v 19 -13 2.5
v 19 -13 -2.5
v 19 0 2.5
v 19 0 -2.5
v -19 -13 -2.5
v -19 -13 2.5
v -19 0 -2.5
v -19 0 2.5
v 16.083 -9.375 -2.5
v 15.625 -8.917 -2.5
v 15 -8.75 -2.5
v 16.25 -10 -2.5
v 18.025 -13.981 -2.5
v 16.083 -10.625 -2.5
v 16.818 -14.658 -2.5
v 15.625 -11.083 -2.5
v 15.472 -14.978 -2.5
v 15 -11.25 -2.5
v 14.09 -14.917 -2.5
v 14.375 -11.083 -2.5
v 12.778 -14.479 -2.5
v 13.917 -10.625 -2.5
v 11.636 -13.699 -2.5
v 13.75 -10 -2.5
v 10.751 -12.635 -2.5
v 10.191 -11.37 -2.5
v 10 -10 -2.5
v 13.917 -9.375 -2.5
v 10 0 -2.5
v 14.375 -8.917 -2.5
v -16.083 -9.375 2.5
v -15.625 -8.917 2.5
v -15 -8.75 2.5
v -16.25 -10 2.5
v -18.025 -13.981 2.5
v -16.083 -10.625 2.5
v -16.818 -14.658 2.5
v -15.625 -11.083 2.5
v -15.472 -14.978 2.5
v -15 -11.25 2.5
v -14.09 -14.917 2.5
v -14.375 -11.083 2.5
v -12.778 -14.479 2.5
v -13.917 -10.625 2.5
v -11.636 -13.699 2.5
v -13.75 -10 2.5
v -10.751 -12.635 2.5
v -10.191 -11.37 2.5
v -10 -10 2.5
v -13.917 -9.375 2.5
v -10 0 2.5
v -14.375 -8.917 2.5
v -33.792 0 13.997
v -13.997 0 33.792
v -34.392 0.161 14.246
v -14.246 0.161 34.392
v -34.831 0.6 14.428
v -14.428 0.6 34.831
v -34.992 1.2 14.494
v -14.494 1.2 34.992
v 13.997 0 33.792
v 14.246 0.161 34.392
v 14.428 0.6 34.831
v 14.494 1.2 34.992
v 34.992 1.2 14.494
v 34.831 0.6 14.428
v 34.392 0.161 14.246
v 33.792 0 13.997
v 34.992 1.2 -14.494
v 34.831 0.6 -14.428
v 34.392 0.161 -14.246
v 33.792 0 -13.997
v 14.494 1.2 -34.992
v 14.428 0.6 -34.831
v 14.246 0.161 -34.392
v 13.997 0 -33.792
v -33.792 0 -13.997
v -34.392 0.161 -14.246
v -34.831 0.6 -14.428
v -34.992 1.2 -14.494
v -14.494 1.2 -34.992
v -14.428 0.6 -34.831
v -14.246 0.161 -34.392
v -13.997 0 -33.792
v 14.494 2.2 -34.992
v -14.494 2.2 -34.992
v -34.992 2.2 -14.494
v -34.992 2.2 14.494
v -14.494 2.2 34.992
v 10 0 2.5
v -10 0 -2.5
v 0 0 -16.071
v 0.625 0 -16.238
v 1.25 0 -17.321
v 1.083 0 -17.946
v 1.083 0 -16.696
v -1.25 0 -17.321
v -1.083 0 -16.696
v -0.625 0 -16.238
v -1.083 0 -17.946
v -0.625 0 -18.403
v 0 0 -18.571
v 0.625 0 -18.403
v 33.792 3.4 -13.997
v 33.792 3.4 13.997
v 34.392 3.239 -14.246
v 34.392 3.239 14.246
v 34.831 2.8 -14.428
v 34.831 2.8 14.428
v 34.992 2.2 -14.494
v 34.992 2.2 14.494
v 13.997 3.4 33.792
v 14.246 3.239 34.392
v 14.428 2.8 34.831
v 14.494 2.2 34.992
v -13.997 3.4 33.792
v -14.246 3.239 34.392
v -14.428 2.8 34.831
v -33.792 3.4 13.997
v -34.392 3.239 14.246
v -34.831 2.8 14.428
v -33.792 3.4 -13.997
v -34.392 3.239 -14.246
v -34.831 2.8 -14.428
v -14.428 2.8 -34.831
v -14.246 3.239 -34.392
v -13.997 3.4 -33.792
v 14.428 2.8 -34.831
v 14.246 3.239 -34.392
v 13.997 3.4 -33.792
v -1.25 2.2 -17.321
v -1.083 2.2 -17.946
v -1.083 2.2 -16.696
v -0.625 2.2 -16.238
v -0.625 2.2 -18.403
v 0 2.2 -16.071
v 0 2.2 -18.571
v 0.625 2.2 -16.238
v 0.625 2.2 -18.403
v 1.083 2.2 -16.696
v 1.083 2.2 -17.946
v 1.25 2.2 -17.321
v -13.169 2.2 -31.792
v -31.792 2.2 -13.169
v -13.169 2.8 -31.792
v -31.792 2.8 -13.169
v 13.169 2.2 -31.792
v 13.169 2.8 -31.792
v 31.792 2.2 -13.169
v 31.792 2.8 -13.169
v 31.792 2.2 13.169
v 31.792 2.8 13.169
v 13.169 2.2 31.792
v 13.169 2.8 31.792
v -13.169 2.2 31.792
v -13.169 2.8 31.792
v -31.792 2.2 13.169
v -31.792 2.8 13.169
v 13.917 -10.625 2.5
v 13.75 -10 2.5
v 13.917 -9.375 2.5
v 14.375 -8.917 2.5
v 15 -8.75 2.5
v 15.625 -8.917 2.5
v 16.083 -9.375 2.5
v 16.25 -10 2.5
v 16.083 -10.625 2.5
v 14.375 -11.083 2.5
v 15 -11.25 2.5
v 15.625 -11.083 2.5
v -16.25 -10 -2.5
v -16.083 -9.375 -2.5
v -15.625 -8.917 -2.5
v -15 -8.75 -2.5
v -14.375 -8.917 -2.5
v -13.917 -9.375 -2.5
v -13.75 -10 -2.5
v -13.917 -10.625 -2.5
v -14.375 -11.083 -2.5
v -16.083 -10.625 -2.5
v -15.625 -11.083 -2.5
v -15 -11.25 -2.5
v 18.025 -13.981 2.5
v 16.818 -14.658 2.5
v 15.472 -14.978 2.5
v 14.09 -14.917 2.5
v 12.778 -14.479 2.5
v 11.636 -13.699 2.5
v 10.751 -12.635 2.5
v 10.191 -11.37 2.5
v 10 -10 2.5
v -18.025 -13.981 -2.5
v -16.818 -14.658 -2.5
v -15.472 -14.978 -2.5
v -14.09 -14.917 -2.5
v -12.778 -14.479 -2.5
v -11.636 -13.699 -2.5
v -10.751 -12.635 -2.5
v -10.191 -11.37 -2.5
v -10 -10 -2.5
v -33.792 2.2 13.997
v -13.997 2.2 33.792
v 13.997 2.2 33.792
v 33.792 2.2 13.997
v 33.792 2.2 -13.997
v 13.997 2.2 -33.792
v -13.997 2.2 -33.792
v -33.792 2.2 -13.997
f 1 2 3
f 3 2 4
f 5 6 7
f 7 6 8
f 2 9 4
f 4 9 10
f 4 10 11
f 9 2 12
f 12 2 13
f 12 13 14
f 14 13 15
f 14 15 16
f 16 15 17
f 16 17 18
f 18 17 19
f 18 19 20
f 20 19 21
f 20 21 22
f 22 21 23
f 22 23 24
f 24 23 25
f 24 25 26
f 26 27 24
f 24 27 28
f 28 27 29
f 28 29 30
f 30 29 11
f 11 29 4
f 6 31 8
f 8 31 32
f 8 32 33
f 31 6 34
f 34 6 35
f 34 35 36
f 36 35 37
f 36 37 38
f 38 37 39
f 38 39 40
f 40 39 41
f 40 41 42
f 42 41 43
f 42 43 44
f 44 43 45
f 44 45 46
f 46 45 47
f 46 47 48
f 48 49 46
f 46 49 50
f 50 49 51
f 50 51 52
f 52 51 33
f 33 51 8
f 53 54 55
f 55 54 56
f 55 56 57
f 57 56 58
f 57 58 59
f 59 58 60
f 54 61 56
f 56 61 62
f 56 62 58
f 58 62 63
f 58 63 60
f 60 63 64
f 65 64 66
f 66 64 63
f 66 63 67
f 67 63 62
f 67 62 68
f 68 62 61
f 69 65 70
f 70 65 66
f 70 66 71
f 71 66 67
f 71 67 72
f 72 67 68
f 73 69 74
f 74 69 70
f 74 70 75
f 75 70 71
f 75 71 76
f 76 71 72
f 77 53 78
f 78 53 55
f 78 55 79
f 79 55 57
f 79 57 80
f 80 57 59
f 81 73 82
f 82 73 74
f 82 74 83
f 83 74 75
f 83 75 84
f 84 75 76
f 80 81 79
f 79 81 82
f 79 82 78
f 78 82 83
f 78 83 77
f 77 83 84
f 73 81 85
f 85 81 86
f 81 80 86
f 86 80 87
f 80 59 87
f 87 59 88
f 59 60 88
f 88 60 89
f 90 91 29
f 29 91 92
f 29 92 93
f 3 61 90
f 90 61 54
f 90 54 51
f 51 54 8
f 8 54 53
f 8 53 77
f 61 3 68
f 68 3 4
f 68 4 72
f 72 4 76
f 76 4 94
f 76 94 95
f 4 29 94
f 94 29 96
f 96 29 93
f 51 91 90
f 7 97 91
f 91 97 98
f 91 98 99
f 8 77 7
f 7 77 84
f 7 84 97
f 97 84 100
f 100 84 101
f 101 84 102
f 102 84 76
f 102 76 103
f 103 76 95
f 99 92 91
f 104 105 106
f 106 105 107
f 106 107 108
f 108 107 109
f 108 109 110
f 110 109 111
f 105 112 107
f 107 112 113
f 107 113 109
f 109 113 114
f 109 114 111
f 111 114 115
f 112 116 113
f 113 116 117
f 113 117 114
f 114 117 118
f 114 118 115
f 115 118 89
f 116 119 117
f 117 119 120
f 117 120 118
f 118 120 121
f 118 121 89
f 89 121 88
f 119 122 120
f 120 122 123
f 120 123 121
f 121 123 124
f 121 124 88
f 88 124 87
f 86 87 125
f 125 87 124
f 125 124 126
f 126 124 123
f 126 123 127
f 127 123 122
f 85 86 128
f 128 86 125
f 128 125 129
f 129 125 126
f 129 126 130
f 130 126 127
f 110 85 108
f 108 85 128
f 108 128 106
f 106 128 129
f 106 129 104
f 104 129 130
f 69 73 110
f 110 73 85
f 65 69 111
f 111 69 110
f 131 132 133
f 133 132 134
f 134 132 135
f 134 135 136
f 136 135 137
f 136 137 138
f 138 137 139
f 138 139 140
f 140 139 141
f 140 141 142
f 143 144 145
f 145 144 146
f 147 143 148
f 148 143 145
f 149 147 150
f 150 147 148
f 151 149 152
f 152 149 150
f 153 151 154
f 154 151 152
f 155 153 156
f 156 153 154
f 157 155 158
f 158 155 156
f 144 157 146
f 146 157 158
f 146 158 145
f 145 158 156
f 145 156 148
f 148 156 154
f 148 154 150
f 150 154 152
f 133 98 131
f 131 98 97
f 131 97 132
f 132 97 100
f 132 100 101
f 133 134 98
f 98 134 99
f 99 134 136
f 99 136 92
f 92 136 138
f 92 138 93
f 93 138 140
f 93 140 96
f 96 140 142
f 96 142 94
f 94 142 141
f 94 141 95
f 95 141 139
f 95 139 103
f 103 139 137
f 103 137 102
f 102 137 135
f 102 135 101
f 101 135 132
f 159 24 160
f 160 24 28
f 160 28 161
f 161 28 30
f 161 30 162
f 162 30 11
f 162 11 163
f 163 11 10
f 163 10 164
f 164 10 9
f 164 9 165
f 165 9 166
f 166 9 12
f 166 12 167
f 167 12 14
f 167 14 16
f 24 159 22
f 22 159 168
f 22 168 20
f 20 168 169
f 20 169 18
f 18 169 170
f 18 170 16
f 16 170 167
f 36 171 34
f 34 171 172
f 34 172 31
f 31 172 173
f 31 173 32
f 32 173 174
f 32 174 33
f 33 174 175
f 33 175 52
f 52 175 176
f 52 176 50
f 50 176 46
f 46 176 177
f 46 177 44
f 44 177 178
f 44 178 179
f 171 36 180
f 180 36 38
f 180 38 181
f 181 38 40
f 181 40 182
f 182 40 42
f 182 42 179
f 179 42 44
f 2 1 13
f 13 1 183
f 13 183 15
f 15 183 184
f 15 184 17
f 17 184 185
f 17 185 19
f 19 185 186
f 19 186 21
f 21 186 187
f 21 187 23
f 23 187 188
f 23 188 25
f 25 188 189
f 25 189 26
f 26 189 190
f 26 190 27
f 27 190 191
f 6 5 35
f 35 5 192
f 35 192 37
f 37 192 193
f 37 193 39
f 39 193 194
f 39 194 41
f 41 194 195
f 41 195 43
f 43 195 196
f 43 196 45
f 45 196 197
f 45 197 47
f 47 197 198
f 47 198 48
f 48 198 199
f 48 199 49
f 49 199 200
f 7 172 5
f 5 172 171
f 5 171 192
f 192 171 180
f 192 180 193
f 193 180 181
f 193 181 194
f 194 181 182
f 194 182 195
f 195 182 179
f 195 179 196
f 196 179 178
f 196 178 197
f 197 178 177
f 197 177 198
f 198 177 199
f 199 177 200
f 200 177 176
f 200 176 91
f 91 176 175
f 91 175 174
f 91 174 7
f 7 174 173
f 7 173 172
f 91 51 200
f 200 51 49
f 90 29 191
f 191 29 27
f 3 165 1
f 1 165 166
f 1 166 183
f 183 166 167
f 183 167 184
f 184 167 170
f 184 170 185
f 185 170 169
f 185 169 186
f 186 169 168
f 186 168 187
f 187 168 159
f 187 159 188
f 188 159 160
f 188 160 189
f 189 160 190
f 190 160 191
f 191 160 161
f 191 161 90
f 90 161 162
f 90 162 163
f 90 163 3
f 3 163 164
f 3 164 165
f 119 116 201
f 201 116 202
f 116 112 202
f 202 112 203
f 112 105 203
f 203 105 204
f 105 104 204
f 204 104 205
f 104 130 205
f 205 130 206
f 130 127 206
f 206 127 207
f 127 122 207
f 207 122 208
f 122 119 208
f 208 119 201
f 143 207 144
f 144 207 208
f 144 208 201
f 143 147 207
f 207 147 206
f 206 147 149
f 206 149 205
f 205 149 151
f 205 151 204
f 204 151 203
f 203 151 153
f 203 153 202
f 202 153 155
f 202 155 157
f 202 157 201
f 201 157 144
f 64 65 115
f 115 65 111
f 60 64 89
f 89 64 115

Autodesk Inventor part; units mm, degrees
ref_plane "YZ Plane" through (0, 0, 0) normal (1, 0, 0) x (0, 1, 0)
ref_plane "XZ Plane" through (0, 0, 0) normal (0, 1, 0) x (-1, 0, 0)
ref_plane "XY Plane" through (0, 0, 0) normal (0, 0, 1) x (1, 0, 0)
sketch "스케치3" plane through (0, 0, 0) normal (0, 1, 0) x (-1, 0, 0)
  line L0 (34.9919, -14.4941) -> (14.4941, -34.9919)
  line L1 (14.4941, -34.9919) -> (-14.4941, -34.9919)
  line L2 (-14.4941, -34.9919) -> (-34.9919, -14.4941)
  line L3 (-34.9919, -14.4941) -> (-34.9919, 14.4941)
  line L4 (-34.9919, 14.4941) -> (-14.4941, 34.9919)
  line L5 (-14.4941, 34.9919) -> (14.4941, 34.9919)
  line L6 (14.4941, 34.9919) -> (34.9919, 14.4941)
  line L7 (34.9919, 14.4941) -> (34.9919, -14.4941)
  line L8 (32.5919, -13.5) -> (13.5, -32.5919)
  line L9 (13.5, -32.5919) -> (-13.5, -32.5919)
  line L10 (-13.5, -32.5919) -> (-32.5919, -13.5)
  line L11 (-32.5919, -13.5) -> (-32.5919, 13.5)
  line L12 (-32.5919, 13.5) -> (-13.5, 32.5919)
  line L13 (-13.5, 32.5919) -> (13.5, 32.5919)
  line L14 (13.5, 32.5919) -> (32.5919, 13.5)
  line L15 (32.5919, 13.5) -> (32.5919, -13.5)
  point P0 (0, 0)
  point P1 (0, 0)
  point P2 (0, 0)
  point P3 (0, 0)
  dimension "d43" = 27
  dimension "d44" = 2.4
extrude "돌출2" add sketch "스케치3" along normal blind 3.4 contours L0 L1 L2 L3 L4 L5 L6 L7 | L8 L9 L10 L11 L12 L13 L14 L15
sketch "스케치4" plane through (0, 3.4, 0) normal (0, 1, 0) x (1, 0, 0)
  line L0 (13.5, -32.5919) -> (-13.5, -32.5919)
  line L1 (-13.5, -32.5919) -> (-32.5919, -13.5)
  line L2 (-32.5919, -13.5) -> (-32.5919, 13.5)
  line L3 (-32.5919, 13.5) -> (-13.5, 32.5919)
  line L4 (-13.5, 32.5919) -> (13.5, 32.5919)
  line L5 (13.5, 32.5919) -> (32.5919, 13.5)
  line L6 (32.5919, 13.5) -> (32.5919, -13.5)
  line L7 (32.5919, -13.5) -> (13.5, -32.5919)
  line L8 (-13.9971, 33.7919) -> (13.9971, 33.7919)
  line L9 (13.9971, 33.7919) -> (33.7919, 13.9971)
  line L10 (33.7919, 13.9971) -> (33.7919, -13.9971)
  line L11 (33.7919, -13.9971) -> (13.9971, -33.7919)
  line L12 (13.9971, -33.7919) -> (-13.9971, -33.7919)
  line L13 (-13.9971, -33.7919) -> (-33.7919, -13.9971)
  line L14 (-33.7919, -13.9971) -> (-33.7919, 13.9971)
  line L15 (-33.7919, 13.9971) -> (-13.9971, 33.7919)
  line L16 (-13.1686, 31.7919) -> (13.1686, 31.7919)
  line L17 (13.1686, 31.7919) -> (31.7919, 13.1686)
  line L18 (31.7919, 13.1686) -> (31.7919, -13.1686)
  line L19 (31.7919, -13.1686) -> (13.1686, -31.7919)
  line L20 (13.1686, -31.7919) -> (-13.1686, -31.7919)
  line L21 (-13.1686, -31.7919) -> (-31.7919, -13.1686)
  line L22 (-31.7919, -13.1686) -> (-31.7919, 13.1686)
  line L23 (-31.7919, 13.1686) -> (-13.1686, 31.7919)
  point P0 (0, 0)
  point P1 (0, 0)
  point P2 (0, 0)
  point P3 (0, 0)
  dimension "d7" = 27
  dimension "d42" = 1.2
  dimension "d45" = 0.8
extrude "돌출3" cut sketch "스케치4" against normal blind 1.2 contours L0 L1 L2 L3 L4 L5 L6 L7 | L8 L9 L10 L11 L12 L13 L14 L15 | L16 L17 L18 L19 L20 L21 L22 L23
sketch "스케치5" plane through (0, 0, 0) normal (0, -1, 0) x (1, 0, 0)
  line L0 (10, 2.5) -> (20, 2.5)
  line L1 (20, 2.5) -> (20, -2.5)
  line L2 (20, -2.5) -> (10, -2.5)
  line L3 (10, -2.5) -> (10, 2.5)
  line L4 (10, 2.5) -> (20, -2.5) construction
  line L5 (20, 2.5) -> (10, -2.5) construction
  line L6 (-20, 2.5) -> (-10, 2.5)
  line L7 (-10, 2.5) -> (-10, -2.5)
  line L8 (-10, -2.5) -> (-20, -2.5)
  line L9 (-20, -2.5) -> (-20, 2.5)
  line L10 (-20, 2.5) -> (-10, -2.5) construction
  line L11 (-10, 2.5) -> (-20, -2.5) construction
  point P0 (0, 0)
  point P1 (15, 0)
  point P2 (-15, 0)
  dimension "d11" = 10
  dimension "d12" = 5
  dimension "d13" = 10
  dimension "d16" = 30
extrude "돌출4" add sketch "스케치5" along normal blind 10
sketch "스케치6" plane through (-10, 0, -2.5) normal (0, 0, -1) x (-1, 0, 0)
  circle A0 centre (5, -10) radius 5
  circle A1 centre (-25, -10) radius 5
  line L0 (-20, -10) -> (-30, -10) projected
  line L1 (10, -10) -> (0, -10) projected
  point P0 (-10, 0)
  dimension "d23" = 10
  dimension "d24" = 10
extrude "돌출5" add sketch "스케치6" against normal blind 5
sketch "스케치7" plane through (-10, 0, -2.5) normal (0, 0, -1) x (-1, 0, 0)
  circle A0 centre (5, -10) radius 1.25
  line L0 (10, 0) -> (10, -10) projected
  line L1 (0, 0) -> (10, 0) projected
  line L2 (4.7788, 0) -> (0, 0)
  circle A1 centre (-25, -10) radius 1.25
  point P0 (-10, 0)
  dimension "d27" = 2.5
  dimension "d28" = 5
  dimension "d31" = 30
extrude "돌출6" cut sketch "스케치7" against normal blind 5
sketch "스케치8" plane through (0, 0, 0) normal (0, -1, 0) x (1, 0, 0)
  circle A0 centre (0, -17.3205) radius 1.25
  line L0 (-10, 2.5) -> (-10, -2.5) projected
  point P0 (0, 0)
  point P1 (-10, 0)
  dimension "d38" = 2.5
  dimension "d39" = 17.3205
extrude "돌출7" cut sketch "스케치8" against normal blind 5
sketch "스케치9" plane through (0, 2.2, 0) normal (0, 1, 0) x (1, 0, 0)
  line L0 (-13.1686, 31.7919) -> (13.1686, 31.7919)
  line L1 (13.1686, 31.7919) -> (31.7919, 13.1686)
  line L2 (31.7919, 13.1686) -> (31.7919, -13.1686)
  line L3 (31.7919, -13.1686) -> (13.1686, -31.7919)
  line L4 (13.1686, -31.7919) -> (-13.1686, -31.7919)
  line L5 (-13.1686, -31.7919) -> (-31.7919, -13.1686)
  line L6 (-31.7919, -13.1686) -> (-31.7919, 13.1686)
  line L7 (-31.7919, 13.1686) -> (-13.1686, 31.7919)
  line L8 (-13.9971, 33.7919) -> (13.9971, 33.7919) projected
  line L9 (-11.926, 28.7919) -> (11.926, 28.7919)
  line L10 (11.926, 28.7919) -> (28.7919, 11.926)
  line L11 (28.7919, 11.926) -> (28.7919, -11.926)
  line L12 (28.7919, -11.926) -> (11.926, -28.7919)
  line L13 (11.926, -28.7919) -> (-11.926, -28.7919)
  line L14 (-11.926, -28.7919) -> (-28.7919, -11.926)
  line L15 (-28.7919, -11.926) -> (-28.7919, 11.926)
  line L16 (-28.7919, 11.926) -> (-11.926, 28.7919)
  point P0 (0, 0)
  point P1 (0, 0)
  point P2 (0, 0)
  dimension "d46" = 2
  dimension "d47" = 3
extrude "돌출8" add sketch "스케치9" along normal blind 0.6 contours L0 L1 L2 L3 L4 L5 L6 L7 | L9 L10 L11 L12 L13 L14 L15 L16
fillet "모깎기1" radius 1.2 16 edges at (-34.9919, 3.4, 0) (-24.743, 3.4, 24.743) (0, 3.4, 34.9919) (24.743, 3.4, 24.743) (34.9919, 3.4, 0) (24.743, 3.4, -24.743) (0, 3.4, -34.9919) (-24.743, 3.4, -24.743) (24.743, 0, 24.743) (0, 0, 34.9919) (-24.743, 0, 24.743) (-34.9919, 0, 0) (-24.743, 0, -24.743) (0, 0, -34.9919) (24.743, 0, -24.743) (34.9919, 0, 0)
sketch "스케치10" plane through (0, 0, 0) normal (0, -1, 0) x (1, 0, 0)
  line L0 (-20, 2.5) -> (-10, 2.5) projected
  line L1 (-10, -2.5) -> (-20, -2.5) projected
  line L2 (-20, 2.5) -> (-19, 2.5)
  line L3 (-19, 2.5) -> (-19, -2.5)
  line L4 (-19, -2.5) -> (-20, -2.5)
  line L5 (-20, -2.5) -> (-20, 2.5)
  line L6 (20, -2.5) -> (10, -2.5) projected
  line L7 (10, 2.5) -> (20, 2.5) projected
  line L8 (20, -2.5) -> (19, -2.5)
  line L9 (19, -2.5) -> (19, 2.5)
  line L10 (19, 2.5) -> (20, 2.5)
  line L11 (20, 2.5) -> (20, -2.5)
  point P0 (0, 0)
  dimension "d54" = 1
  dimension "d55" = 1
extrude "돌출9" cut sketch "스케치10" along normal blind 15
equation "\"d55\" = d54"
properties part number "OV-PAM_top_2"
